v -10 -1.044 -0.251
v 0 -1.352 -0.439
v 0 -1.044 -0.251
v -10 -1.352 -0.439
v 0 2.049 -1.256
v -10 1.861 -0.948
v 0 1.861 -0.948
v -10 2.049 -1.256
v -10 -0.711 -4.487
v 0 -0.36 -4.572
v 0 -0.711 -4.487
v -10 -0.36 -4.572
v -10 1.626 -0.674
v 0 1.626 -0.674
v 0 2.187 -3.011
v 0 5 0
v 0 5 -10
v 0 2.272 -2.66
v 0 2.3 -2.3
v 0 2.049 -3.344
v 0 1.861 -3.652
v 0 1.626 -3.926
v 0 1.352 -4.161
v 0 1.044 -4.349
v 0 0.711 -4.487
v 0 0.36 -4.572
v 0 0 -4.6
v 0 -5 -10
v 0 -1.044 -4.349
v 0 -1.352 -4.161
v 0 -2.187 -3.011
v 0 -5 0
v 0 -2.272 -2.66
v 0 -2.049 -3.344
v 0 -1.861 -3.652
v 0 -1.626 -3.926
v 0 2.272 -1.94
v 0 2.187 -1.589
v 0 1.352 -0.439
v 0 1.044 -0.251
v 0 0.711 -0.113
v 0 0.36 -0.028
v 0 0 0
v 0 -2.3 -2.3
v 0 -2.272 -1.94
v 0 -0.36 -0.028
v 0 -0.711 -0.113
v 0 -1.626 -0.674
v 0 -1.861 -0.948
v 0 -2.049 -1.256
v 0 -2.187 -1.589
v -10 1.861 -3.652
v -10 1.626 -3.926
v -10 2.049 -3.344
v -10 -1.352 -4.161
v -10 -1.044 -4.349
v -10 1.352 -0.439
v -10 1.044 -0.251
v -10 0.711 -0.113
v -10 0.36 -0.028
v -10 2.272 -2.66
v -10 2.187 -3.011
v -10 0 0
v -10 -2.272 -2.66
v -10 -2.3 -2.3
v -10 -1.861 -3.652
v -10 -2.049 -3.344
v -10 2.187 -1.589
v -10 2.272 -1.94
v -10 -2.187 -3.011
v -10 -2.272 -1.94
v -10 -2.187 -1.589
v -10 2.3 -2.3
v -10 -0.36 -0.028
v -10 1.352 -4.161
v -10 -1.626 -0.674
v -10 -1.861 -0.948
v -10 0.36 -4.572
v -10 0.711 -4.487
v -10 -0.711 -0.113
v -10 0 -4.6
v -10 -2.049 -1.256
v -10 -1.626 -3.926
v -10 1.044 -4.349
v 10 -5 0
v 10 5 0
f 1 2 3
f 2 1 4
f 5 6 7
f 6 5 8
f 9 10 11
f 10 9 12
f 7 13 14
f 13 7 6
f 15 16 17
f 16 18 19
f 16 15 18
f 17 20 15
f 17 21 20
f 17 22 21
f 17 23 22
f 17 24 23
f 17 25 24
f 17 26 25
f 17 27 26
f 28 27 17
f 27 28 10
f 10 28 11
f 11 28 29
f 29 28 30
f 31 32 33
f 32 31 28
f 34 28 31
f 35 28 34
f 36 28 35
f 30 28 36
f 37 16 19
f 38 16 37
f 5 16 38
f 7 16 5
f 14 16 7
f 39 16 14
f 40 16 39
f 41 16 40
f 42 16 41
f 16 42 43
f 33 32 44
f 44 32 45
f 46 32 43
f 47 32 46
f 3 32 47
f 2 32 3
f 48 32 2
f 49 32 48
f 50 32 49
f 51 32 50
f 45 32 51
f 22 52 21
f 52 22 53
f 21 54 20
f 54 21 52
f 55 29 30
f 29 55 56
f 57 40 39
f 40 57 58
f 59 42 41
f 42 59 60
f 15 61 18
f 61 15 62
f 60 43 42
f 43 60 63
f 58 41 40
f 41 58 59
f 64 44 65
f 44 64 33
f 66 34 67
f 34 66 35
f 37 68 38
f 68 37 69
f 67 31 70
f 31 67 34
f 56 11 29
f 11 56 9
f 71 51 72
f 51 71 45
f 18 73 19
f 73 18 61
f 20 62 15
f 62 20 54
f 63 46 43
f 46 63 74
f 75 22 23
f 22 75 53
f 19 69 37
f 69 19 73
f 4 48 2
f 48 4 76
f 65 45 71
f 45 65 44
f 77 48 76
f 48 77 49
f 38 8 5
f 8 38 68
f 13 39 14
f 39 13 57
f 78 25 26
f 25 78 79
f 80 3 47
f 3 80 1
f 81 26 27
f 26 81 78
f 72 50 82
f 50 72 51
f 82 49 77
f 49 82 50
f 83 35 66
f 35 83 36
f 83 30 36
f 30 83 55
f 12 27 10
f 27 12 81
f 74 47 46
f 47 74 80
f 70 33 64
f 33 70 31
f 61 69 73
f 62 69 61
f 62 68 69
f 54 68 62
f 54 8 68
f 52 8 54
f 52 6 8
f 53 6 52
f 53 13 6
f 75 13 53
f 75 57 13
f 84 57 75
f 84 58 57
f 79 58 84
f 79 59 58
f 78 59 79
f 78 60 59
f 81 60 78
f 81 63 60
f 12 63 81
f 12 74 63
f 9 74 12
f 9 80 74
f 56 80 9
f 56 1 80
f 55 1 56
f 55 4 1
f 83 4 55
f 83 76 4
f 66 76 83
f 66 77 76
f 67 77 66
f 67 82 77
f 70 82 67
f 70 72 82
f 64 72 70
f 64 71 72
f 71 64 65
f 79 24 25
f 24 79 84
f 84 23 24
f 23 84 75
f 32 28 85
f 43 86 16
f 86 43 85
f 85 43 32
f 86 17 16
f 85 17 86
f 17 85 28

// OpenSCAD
$fn=40;

d=4.6;


translate([0, 0, -d/2])
rotate([0, -90, 0])
cylinder(d=d, h=10);

rotate([-90, 0, 0])
translate([0, 0, -5])
linear_extrude(height=10)
polygon([[0,0], [10,0], [0,10]]);
